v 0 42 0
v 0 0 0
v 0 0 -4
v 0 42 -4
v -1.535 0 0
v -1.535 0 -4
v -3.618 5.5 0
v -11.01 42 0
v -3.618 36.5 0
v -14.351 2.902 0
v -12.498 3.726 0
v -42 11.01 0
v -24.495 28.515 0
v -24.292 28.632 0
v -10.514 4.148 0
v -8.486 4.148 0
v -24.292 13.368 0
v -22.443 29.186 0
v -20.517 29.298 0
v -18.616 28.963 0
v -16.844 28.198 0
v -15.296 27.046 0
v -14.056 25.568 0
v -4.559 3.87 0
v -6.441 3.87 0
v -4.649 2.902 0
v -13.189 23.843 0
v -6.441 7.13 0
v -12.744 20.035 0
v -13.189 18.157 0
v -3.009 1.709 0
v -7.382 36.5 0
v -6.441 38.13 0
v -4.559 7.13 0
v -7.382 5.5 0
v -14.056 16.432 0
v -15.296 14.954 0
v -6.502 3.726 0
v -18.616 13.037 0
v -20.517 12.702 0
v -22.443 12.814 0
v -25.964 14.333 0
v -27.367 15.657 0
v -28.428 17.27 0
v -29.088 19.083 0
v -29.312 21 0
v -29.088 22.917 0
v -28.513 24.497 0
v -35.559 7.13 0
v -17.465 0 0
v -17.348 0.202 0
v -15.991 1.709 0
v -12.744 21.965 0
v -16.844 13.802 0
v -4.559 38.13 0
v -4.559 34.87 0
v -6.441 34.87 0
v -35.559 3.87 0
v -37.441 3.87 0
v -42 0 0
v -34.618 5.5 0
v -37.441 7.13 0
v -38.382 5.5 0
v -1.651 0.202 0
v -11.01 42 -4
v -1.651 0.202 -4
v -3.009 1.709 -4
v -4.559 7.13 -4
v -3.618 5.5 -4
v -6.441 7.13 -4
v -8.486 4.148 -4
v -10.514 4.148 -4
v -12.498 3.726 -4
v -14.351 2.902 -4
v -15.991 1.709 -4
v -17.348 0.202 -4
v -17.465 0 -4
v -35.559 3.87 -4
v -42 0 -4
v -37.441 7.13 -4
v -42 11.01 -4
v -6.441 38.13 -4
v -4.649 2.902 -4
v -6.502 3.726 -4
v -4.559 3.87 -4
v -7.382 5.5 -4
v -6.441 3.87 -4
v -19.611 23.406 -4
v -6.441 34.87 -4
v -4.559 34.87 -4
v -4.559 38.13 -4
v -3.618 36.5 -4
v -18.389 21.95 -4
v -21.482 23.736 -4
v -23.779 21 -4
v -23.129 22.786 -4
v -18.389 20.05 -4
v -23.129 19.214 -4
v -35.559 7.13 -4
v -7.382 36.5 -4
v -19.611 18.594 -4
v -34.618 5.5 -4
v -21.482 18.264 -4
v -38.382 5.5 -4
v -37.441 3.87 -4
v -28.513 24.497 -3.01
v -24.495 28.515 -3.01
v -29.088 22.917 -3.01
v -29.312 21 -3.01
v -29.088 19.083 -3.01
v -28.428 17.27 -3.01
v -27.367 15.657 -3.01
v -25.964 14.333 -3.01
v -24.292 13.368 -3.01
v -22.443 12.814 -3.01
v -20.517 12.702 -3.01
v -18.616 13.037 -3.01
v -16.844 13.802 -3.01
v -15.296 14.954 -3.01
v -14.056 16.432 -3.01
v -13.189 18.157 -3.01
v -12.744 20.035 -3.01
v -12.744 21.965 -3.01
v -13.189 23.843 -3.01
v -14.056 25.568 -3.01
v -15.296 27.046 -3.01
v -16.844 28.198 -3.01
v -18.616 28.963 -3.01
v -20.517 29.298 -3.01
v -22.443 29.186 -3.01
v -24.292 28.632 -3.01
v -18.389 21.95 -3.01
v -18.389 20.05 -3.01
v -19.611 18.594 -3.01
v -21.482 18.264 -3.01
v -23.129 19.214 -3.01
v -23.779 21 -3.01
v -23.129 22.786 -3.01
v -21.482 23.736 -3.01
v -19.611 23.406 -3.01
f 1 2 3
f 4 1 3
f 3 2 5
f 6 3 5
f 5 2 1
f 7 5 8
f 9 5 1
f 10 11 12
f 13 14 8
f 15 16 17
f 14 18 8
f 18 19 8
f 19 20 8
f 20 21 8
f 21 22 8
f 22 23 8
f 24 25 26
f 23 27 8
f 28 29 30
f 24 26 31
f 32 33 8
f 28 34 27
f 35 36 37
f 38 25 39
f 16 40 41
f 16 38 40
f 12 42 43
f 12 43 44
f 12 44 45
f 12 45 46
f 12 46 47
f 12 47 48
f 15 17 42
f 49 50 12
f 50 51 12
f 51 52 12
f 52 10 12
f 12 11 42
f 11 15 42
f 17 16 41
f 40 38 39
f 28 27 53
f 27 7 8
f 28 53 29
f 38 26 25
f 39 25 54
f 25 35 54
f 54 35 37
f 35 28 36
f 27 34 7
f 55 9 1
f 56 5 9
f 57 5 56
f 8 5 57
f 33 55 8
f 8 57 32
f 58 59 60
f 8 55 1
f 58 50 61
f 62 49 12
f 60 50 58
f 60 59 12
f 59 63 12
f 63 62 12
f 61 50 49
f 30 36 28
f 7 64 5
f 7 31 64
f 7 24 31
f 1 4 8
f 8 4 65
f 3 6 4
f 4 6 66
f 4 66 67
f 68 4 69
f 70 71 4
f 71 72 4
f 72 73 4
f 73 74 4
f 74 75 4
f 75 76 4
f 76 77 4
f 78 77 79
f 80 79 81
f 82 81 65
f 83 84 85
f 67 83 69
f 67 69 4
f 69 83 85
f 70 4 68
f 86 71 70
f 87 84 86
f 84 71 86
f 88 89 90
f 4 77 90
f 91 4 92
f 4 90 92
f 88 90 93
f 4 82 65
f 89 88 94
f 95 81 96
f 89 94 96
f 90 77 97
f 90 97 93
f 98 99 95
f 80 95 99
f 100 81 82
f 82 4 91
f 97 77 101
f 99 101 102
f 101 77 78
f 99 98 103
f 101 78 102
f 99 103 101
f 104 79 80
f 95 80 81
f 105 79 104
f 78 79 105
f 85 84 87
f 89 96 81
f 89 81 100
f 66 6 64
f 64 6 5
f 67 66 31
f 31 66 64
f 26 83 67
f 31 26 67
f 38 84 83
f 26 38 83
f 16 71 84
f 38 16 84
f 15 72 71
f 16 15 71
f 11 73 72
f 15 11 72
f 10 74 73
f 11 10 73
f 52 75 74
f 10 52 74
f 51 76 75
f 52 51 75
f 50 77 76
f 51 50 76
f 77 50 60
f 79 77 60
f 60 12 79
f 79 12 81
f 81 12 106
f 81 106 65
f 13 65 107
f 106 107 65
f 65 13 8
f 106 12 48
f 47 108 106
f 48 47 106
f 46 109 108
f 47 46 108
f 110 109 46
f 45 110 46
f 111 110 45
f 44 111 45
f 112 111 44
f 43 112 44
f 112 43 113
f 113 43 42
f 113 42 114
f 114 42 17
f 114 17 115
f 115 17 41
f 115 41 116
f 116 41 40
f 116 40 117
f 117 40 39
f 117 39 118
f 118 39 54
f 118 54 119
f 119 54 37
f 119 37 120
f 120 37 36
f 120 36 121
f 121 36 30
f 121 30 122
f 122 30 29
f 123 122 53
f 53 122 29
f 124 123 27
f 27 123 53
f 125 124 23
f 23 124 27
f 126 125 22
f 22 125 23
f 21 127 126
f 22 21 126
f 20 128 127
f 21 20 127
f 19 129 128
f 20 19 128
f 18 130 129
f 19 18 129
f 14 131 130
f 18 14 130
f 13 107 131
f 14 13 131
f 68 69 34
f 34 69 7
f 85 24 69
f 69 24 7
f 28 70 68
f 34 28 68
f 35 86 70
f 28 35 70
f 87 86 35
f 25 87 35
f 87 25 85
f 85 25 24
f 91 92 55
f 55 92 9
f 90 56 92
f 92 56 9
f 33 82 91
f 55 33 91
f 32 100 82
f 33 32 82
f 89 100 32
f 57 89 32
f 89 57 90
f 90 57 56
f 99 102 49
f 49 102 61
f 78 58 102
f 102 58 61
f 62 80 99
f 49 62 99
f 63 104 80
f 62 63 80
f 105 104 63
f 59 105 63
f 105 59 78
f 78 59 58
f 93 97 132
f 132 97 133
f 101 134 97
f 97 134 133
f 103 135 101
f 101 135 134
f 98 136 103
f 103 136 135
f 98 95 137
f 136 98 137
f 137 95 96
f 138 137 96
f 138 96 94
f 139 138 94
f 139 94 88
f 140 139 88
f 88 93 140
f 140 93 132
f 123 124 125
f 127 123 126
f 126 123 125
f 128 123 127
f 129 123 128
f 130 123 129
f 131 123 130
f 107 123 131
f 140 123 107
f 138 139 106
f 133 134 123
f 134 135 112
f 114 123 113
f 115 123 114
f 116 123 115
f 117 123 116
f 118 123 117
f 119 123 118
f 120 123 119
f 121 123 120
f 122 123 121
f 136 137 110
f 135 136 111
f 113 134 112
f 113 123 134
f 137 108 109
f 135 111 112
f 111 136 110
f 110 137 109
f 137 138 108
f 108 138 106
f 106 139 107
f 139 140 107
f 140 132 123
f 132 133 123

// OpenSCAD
// file: extruder_configuration.scad
//pdiam based on Nophead's : http://hydraraptor.blogspot.com/2011/02/polyholes.html 
debug=0;

assemble= 0;
show_axles=0;

function pdiam(diam, tolerance=0.3)=debug?diam:(diam) / cos (180 / max(round(2 * diam),3))+tolerance;

//function pdiam(diam)=diam;

extruder_gear_D = 9;//12.6;
extruder_gear_length = 11;
filament_D = 1.75;

m3_D=3;
m8_D=8;

nema_size = 42;
nema_holes_distance = 31;
nema_axle_length = 24;
nema_axle_cutout_D = 24;

shaft_D = 5;

bearing625_D = 16.25;
bearing625_height=5;

bearing608_D	= 22;
bearing608_D_clr	= 24;
bearing608_width	= 7;
bearing608_clr	= bearing608_width+1;
bearing608_m8	= 14;

bearingLM8UU_height	= 24;
bearingLM8UU_D	= 15;
holder_LM8UU_D = 1;

thickness = 4;
depth = 17;
idler_depth = depth - 1;

echo( "Required M3 len : ");
echo( 2*thickness + depth + 4);

holder_offset_x = bearingLM8UU_D / 2 + thickness / 2;
holder_offset_y = -bearingLM8UU_D/2+ thickness / 2;

pneufit_D = 9.8;
pneufit_depth = 7;
filament_path_width = pneufit_D + 4;
filament_path_height = nema_size/4 + 2;
mo = 0.01;
da6 = 1/cos(180/6)/2;

idler_angle = 0;
idler_rotation_tolerance = 1;

hole_distance = (nema_size - nema_holes_distance) / 2; 
holes = 
[
	[hole_distance, hole_distance, -mo],
	[nema_size - hole_distance, hole_distance, -mo],
	[hole_distance, nema_size - hole_distance, -mo],
	//[nema_size - hole_distance, nema_size - hole_distance, -mo],
];

pillar_width = hole_distance*2;
pillar_offset = hole_distance - pillar_width / 2;
pillars = 
[
	[pillar_offset,pillar_offset,thickness-mo],
	[pillar_offset,nema_size - pillar_offset - pillar_width,thickness-mo],
];

holder_holes_distance = depth / 2 - m3_D - 1;
holder_holes = [-holder_holes_distance,holder_holes_distance];
// main file
include<extruder_configuration.scad>

rotate([0,180,0])
top();

module top()
{
	difference()
	{
		// main body
		union()
		{
			translate([0,0, 0])
			cube([nema_size, nema_size, thickness]);
			
			// lm8uu holder
			translate([holder_offset_x, holder_offset_y,0])
			cylinder(r=pdiam(bearingLM8UU_D)/2 + thickness/2, h=thickness);
		}

		// lm8uu holder
		translate([holder_offset_x, holder_offset_y,-mo])
		cylinder(r=pdiam(bearingLM8UU_D)/2 + thickness/2 + mo, h=bearingLM8UU_height-thickness-depth+holder_LM8UU_D+2*mo);

		// lm8uu holder
		translate([holder_offset_x, holder_offset_y,-mo])
		cylinder(r=pdiam(m8_D,1)/2, h=thickness+2*mo);

		// motor holes
		for (h = holes) 
		{
			translate(h)
			cylinder(r=pdiam(m3_D)/2, h=depth + thickness+mo*2);
		}

		// shaft hole
		translate([nema_size/2, nema_size/2, -mo])
		cylinder(r=pdiam(shaft_D)/2, h=thickness+mo*2);

		// bearing holder
		translate([nema_size/2, nema_size/2, -mo])
		cylinder(r=pdiam(bearing625_D)/2, h=thickness-1+mo*2);

		// material cutout
		translate([0,0,-mo])
		linear_extrude(height=thickness+2*mo, convexity=1)
		polygon([[nema_size+mo, nema_size+mo], [nema_size+mo, pillar_width], [pillar_width,nema_size + mo]], center=false);

	}		
}
